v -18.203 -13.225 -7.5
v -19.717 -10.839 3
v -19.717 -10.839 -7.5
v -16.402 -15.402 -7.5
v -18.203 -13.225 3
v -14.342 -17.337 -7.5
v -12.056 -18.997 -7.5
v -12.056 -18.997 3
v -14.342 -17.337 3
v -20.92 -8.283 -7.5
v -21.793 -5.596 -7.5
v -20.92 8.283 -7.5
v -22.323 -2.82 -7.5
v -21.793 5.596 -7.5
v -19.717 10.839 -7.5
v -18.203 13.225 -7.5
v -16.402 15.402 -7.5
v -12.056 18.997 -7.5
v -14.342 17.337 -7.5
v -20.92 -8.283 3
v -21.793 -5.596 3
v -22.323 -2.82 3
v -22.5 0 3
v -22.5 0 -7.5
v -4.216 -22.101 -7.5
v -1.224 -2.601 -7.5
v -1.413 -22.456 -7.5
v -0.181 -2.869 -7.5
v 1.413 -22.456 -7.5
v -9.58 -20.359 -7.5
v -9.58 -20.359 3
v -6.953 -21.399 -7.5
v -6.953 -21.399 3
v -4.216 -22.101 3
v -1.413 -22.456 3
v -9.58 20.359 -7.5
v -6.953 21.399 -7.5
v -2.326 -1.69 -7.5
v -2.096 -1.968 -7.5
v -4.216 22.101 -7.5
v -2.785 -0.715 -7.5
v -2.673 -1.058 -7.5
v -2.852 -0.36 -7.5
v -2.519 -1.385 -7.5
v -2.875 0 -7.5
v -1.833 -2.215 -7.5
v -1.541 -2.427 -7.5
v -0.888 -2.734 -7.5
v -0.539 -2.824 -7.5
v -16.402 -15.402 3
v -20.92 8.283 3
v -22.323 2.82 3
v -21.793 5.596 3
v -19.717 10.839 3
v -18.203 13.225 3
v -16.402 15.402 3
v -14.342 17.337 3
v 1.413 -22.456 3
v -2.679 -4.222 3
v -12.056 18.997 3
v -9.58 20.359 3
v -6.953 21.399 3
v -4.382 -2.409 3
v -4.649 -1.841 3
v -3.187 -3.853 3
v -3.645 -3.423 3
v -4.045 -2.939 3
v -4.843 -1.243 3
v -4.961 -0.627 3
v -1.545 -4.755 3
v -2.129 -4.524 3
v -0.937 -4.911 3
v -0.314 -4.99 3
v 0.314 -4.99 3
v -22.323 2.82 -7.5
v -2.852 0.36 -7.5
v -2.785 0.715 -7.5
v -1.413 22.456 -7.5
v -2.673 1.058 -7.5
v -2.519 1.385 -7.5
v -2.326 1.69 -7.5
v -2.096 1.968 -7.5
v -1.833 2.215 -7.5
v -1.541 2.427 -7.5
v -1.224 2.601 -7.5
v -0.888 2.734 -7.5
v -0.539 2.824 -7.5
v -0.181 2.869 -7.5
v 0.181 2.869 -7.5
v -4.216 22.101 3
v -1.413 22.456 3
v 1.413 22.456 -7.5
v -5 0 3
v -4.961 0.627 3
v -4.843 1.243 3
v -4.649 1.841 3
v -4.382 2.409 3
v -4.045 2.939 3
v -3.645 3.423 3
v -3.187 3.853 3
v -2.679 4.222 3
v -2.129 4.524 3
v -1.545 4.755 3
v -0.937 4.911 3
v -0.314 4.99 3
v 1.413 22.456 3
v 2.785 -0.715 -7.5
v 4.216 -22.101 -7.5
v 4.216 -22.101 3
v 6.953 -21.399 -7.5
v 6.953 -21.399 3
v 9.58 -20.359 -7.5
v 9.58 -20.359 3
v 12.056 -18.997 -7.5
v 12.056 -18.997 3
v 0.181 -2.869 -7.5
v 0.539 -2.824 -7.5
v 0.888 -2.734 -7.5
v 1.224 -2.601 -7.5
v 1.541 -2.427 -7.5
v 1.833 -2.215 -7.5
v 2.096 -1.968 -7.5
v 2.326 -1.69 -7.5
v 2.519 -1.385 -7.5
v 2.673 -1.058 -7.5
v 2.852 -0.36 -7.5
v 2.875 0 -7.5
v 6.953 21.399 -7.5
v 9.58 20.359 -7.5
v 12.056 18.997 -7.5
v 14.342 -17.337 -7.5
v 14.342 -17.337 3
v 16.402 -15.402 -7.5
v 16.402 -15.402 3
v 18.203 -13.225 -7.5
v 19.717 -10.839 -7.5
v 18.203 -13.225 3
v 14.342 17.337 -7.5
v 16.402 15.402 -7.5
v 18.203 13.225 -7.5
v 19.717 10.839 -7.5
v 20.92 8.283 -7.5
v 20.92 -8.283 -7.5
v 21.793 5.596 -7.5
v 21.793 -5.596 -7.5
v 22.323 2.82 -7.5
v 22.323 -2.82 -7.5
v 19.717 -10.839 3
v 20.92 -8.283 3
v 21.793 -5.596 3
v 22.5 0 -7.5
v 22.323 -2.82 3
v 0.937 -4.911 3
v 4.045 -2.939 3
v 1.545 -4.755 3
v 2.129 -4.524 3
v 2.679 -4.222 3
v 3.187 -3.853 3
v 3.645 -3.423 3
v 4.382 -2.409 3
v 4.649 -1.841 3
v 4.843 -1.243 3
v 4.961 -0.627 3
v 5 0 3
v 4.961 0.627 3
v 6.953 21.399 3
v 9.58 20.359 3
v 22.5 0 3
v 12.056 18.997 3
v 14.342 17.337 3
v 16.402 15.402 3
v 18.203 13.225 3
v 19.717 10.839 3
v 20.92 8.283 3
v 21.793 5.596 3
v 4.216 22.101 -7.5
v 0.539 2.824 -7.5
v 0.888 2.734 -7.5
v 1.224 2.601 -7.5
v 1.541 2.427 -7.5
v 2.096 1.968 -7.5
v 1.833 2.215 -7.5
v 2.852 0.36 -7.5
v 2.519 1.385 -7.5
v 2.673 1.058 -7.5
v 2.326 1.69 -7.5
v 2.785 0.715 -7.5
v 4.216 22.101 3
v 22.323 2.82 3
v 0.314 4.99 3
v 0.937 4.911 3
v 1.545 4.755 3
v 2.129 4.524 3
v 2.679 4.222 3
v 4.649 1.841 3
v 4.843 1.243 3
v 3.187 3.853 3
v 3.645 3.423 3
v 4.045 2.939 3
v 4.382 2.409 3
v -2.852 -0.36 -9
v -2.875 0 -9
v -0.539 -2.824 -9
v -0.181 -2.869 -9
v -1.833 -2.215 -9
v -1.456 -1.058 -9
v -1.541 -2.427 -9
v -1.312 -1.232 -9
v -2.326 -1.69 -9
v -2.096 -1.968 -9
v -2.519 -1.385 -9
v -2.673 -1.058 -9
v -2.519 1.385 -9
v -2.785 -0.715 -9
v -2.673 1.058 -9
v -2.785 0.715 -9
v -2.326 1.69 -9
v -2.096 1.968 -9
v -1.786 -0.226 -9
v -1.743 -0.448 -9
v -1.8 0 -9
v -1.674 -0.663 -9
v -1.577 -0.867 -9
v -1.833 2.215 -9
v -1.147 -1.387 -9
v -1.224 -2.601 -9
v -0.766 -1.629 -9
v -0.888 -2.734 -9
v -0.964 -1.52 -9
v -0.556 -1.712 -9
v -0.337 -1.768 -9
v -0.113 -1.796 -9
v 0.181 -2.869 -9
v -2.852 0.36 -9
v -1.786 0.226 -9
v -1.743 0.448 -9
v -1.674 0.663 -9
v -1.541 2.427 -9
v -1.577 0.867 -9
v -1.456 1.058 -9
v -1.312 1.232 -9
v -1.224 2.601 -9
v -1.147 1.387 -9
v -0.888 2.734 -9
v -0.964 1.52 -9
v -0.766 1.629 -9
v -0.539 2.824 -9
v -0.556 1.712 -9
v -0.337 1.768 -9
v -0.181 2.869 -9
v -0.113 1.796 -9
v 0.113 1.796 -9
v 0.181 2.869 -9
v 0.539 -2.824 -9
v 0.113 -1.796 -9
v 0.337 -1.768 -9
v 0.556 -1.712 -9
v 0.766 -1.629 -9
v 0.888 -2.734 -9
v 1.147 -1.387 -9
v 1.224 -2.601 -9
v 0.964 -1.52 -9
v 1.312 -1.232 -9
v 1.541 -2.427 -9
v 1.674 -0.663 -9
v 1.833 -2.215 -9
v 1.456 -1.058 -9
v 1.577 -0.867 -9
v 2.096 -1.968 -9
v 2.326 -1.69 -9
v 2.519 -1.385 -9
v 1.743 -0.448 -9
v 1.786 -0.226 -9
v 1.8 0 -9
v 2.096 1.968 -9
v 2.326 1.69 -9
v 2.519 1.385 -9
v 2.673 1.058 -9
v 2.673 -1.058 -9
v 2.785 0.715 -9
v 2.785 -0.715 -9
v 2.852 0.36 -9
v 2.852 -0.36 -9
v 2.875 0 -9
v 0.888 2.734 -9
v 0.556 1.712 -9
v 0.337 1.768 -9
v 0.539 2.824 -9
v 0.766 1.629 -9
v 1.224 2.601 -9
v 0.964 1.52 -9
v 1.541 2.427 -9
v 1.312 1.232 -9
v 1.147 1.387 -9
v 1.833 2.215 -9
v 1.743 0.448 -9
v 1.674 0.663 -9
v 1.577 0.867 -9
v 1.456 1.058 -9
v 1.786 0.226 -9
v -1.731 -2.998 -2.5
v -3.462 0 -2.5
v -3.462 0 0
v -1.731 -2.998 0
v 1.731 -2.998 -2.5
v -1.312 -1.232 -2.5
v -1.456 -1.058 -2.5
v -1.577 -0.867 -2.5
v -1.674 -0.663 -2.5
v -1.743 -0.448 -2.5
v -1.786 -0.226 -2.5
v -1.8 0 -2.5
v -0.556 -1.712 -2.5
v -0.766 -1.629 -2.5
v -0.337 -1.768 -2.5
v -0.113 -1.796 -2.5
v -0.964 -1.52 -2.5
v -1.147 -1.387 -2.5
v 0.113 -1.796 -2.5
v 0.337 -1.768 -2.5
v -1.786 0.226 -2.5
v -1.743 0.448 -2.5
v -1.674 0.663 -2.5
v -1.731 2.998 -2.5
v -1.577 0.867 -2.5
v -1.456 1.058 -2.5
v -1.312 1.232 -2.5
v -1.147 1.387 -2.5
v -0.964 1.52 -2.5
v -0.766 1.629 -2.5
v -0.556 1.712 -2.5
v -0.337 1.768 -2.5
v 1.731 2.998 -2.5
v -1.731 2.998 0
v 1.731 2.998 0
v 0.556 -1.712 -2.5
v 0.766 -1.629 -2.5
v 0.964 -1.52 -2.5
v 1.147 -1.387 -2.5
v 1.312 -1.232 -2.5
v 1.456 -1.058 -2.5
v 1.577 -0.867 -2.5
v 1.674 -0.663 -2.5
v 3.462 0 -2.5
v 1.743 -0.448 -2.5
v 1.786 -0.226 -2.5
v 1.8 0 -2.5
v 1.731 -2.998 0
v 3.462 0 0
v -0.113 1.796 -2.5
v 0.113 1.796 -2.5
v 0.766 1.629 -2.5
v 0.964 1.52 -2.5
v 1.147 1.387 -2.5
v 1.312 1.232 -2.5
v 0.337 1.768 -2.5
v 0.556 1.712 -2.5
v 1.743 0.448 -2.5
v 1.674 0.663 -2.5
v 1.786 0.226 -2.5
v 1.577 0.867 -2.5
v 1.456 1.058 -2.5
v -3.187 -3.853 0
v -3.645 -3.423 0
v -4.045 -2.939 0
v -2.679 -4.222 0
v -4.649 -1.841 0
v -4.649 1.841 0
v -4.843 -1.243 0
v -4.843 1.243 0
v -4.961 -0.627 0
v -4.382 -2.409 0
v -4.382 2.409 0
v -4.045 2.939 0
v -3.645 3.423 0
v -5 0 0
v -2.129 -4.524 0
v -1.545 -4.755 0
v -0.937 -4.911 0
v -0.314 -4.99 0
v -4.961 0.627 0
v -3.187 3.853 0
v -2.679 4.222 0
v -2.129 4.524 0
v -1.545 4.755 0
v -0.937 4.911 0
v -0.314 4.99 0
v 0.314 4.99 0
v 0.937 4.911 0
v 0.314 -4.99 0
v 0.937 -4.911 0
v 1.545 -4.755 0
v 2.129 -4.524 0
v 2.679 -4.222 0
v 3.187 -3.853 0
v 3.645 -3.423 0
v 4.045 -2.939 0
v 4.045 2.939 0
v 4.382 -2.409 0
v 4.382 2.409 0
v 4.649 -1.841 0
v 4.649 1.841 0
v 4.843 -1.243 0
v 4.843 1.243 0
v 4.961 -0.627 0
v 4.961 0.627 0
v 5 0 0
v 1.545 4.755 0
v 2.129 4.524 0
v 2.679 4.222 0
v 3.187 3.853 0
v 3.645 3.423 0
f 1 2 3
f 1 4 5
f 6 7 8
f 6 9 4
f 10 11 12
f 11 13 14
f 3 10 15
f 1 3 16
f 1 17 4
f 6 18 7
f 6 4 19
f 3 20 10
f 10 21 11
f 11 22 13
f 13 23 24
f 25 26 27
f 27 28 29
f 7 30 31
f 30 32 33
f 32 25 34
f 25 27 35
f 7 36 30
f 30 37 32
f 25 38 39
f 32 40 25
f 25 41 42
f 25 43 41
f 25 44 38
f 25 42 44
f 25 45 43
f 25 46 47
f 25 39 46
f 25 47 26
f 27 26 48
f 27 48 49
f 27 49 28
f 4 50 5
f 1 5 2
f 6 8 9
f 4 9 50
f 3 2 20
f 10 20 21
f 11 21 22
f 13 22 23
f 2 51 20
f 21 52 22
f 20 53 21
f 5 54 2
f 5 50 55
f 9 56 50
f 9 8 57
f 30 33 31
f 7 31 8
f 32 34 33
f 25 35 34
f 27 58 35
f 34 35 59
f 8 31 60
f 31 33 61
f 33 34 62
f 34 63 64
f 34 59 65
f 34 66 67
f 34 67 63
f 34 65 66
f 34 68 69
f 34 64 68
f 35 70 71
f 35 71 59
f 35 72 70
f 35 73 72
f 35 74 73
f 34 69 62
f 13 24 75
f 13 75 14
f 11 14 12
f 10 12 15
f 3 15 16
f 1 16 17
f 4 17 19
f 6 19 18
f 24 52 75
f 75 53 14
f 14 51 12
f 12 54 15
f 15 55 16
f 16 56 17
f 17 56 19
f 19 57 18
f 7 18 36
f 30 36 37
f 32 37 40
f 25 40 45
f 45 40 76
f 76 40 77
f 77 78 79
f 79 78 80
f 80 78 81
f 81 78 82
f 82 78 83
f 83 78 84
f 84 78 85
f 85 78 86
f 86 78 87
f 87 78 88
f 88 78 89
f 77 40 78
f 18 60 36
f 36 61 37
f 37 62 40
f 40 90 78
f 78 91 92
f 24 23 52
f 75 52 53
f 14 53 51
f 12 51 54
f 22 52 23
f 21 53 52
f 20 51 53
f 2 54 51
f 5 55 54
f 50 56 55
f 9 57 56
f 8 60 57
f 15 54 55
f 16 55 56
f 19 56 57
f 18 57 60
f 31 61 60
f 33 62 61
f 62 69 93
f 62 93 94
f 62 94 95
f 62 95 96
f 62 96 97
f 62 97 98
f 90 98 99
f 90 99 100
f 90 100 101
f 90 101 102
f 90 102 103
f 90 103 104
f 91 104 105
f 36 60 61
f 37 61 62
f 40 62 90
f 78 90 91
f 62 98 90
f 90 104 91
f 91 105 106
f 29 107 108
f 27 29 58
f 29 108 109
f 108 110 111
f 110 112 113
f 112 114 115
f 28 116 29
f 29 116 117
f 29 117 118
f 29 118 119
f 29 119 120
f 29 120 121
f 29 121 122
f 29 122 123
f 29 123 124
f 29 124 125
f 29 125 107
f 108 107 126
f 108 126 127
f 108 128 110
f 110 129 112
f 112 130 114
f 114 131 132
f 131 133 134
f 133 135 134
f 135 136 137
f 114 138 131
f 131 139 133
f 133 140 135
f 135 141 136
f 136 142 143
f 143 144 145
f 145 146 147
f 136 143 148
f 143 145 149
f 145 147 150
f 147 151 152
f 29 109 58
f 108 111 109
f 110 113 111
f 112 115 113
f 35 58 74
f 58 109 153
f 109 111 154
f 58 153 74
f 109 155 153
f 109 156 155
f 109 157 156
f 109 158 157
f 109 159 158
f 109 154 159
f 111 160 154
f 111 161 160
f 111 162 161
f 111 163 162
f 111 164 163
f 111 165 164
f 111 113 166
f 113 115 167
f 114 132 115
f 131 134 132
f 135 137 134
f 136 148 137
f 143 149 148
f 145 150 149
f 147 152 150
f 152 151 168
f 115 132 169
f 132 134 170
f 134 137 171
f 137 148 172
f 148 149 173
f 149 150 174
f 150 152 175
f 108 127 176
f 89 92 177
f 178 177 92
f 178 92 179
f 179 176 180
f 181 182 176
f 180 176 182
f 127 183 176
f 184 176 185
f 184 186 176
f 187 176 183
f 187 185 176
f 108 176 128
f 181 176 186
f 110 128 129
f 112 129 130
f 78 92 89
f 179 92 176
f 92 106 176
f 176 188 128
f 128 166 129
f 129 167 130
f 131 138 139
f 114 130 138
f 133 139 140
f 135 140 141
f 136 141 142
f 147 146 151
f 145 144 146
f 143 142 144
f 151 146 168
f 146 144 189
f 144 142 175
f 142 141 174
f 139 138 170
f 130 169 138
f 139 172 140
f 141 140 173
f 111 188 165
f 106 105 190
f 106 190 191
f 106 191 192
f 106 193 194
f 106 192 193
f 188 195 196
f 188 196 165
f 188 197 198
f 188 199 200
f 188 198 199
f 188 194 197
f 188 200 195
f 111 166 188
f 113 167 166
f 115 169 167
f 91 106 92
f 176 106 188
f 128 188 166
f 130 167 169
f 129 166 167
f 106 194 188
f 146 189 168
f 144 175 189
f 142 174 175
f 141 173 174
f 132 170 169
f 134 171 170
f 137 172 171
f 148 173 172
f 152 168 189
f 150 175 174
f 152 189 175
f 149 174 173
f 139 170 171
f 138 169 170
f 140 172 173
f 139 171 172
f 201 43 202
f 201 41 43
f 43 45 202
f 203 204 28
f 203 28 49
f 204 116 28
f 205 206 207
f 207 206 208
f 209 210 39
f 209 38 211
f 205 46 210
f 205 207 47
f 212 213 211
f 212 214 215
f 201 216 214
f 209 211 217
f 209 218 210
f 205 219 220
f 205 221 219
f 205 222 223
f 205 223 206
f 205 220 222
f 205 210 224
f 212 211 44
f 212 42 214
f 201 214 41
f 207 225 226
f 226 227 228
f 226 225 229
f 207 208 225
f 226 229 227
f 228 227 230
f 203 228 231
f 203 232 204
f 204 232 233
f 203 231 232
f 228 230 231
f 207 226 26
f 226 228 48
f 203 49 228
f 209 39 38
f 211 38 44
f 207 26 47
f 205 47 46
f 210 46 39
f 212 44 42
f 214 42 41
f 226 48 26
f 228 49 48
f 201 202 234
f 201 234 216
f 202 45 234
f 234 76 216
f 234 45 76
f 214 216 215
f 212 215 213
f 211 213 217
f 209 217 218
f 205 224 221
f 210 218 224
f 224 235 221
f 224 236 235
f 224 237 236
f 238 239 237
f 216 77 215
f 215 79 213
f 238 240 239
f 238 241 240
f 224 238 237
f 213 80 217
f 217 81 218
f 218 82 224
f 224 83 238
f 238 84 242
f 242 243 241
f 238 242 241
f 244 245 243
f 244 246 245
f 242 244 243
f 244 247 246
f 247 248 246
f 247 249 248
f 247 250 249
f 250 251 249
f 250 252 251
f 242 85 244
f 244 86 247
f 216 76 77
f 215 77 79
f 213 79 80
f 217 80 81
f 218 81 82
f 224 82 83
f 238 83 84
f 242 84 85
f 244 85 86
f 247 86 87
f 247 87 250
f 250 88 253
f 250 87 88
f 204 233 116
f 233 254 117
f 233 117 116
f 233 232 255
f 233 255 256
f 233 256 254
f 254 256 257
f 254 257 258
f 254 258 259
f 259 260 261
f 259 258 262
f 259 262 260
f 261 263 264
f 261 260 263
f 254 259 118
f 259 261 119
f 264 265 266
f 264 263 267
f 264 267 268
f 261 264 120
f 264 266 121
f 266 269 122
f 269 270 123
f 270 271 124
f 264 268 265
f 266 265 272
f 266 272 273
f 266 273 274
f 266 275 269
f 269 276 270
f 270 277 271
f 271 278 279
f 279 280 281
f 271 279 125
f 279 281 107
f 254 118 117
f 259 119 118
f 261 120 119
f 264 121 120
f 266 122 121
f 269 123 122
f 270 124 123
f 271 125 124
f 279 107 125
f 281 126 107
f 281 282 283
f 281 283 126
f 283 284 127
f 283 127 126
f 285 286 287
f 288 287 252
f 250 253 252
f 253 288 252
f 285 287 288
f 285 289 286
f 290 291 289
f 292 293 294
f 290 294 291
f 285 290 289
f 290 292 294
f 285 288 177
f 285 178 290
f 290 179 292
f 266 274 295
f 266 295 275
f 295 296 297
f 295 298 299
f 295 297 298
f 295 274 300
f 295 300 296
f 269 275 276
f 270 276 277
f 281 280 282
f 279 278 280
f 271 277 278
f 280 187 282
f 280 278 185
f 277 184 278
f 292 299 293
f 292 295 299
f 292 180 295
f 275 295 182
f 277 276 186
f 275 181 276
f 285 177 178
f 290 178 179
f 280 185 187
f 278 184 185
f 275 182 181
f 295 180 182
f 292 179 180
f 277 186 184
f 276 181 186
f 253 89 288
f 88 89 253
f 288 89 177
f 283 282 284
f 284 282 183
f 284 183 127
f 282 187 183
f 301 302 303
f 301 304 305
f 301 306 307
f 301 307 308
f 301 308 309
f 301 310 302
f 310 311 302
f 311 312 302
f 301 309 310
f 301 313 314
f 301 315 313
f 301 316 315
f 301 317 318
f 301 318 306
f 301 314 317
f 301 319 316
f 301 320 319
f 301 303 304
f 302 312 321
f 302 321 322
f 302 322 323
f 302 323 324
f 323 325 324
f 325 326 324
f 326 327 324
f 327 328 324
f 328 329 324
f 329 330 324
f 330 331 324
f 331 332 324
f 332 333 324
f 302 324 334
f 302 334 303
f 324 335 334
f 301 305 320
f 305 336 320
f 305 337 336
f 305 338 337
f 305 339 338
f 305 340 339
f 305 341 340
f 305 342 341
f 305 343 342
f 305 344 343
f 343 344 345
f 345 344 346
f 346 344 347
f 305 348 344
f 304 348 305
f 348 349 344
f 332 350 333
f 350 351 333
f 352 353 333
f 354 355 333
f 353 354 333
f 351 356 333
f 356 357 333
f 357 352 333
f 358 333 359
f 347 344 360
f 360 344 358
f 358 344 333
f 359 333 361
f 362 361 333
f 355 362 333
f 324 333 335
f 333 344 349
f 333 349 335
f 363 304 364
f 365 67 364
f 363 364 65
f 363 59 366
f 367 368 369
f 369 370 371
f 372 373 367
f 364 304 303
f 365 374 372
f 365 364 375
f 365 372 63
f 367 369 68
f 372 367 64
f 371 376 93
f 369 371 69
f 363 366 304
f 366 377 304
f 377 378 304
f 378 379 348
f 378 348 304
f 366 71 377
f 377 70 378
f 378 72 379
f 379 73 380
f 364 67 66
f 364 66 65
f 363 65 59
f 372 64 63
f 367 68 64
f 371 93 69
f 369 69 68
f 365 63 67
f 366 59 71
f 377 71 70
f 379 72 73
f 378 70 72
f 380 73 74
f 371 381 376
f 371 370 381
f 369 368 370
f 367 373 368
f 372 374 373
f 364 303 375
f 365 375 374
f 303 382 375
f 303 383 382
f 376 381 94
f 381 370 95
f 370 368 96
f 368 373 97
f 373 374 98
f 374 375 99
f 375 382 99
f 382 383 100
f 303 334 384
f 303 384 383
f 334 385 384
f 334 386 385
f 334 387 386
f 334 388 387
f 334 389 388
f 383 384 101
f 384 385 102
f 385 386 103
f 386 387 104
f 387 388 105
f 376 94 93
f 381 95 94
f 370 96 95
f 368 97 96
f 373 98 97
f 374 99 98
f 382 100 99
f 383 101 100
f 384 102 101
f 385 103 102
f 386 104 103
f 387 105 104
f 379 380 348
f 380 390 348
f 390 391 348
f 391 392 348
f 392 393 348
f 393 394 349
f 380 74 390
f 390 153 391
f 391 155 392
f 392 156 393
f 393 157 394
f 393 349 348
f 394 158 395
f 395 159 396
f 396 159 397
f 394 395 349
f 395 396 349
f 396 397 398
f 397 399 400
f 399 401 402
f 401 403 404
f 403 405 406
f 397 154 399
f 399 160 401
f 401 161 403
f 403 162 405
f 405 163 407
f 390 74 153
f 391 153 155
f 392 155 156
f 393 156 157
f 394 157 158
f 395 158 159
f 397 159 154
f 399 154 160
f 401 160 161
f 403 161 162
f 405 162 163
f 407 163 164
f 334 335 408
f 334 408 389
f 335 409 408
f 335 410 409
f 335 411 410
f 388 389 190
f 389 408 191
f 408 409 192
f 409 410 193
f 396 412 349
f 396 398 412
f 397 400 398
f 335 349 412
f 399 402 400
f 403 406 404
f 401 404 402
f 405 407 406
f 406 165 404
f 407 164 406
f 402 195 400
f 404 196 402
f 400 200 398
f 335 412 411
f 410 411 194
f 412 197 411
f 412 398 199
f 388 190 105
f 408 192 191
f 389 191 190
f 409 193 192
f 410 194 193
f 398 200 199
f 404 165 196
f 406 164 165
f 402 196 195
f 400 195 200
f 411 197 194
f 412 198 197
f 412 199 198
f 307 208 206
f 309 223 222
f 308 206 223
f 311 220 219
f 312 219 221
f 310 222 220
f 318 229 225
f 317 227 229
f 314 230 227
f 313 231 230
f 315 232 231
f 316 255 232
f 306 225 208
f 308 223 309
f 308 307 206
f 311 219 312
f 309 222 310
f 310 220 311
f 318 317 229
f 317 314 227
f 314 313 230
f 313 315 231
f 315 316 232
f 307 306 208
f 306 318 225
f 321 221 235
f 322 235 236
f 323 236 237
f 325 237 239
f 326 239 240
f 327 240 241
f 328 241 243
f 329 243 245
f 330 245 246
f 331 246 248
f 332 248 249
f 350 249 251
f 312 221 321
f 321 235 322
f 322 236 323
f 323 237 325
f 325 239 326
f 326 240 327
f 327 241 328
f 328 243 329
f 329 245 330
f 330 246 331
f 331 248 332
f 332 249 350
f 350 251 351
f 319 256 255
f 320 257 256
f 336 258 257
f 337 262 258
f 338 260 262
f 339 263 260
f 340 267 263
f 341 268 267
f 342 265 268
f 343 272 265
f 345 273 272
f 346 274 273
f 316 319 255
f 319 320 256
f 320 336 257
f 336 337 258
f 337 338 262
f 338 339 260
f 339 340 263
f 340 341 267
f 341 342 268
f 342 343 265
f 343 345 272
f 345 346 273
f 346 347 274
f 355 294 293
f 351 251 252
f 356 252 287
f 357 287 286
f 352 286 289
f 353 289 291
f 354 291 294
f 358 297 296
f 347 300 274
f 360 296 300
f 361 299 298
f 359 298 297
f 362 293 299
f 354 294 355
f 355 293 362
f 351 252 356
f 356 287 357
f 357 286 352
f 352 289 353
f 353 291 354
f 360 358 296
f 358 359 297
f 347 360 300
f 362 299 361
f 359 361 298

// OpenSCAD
$fn = 50;

difference() {
	union() {
		translate(v = [0, 0, -7.5]) {
			cylinder(h = 10.5, r = 22.5);
		}
		#translate(v = [0, 0, -9.0]) {
			cylinder(h = 9, r = 2.875);
		}
	}
	union() {
		translate(v = [0, 0, 0]) {
			rotate(a = [0, 0, 0]) {
				difference() {
					union() {
						translate(v = [0, 0, -2.5]) {
							linear_extrude(height = 2.5) {
								polygon(points = [[3.4619999999999997, 0.0], [1.7310000000000003, 2.9981799479017264], [-1.7309999999999992, 2.9981799479017264], [-3.4619999999999997, 4.2397272186481365e-16], [-1.7310000000000014, -2.998179947901726], [1.7309999999999977, -2.9981799479017277]]);
							}
						}
					}
					union();
				}
			}
		}
		#cylinder(h = 3, r = 5.0);
		#translate(v = [0, 0, -100.0]) {
			cylinder(h = 200, r = 1.8);
		}
	}
}
